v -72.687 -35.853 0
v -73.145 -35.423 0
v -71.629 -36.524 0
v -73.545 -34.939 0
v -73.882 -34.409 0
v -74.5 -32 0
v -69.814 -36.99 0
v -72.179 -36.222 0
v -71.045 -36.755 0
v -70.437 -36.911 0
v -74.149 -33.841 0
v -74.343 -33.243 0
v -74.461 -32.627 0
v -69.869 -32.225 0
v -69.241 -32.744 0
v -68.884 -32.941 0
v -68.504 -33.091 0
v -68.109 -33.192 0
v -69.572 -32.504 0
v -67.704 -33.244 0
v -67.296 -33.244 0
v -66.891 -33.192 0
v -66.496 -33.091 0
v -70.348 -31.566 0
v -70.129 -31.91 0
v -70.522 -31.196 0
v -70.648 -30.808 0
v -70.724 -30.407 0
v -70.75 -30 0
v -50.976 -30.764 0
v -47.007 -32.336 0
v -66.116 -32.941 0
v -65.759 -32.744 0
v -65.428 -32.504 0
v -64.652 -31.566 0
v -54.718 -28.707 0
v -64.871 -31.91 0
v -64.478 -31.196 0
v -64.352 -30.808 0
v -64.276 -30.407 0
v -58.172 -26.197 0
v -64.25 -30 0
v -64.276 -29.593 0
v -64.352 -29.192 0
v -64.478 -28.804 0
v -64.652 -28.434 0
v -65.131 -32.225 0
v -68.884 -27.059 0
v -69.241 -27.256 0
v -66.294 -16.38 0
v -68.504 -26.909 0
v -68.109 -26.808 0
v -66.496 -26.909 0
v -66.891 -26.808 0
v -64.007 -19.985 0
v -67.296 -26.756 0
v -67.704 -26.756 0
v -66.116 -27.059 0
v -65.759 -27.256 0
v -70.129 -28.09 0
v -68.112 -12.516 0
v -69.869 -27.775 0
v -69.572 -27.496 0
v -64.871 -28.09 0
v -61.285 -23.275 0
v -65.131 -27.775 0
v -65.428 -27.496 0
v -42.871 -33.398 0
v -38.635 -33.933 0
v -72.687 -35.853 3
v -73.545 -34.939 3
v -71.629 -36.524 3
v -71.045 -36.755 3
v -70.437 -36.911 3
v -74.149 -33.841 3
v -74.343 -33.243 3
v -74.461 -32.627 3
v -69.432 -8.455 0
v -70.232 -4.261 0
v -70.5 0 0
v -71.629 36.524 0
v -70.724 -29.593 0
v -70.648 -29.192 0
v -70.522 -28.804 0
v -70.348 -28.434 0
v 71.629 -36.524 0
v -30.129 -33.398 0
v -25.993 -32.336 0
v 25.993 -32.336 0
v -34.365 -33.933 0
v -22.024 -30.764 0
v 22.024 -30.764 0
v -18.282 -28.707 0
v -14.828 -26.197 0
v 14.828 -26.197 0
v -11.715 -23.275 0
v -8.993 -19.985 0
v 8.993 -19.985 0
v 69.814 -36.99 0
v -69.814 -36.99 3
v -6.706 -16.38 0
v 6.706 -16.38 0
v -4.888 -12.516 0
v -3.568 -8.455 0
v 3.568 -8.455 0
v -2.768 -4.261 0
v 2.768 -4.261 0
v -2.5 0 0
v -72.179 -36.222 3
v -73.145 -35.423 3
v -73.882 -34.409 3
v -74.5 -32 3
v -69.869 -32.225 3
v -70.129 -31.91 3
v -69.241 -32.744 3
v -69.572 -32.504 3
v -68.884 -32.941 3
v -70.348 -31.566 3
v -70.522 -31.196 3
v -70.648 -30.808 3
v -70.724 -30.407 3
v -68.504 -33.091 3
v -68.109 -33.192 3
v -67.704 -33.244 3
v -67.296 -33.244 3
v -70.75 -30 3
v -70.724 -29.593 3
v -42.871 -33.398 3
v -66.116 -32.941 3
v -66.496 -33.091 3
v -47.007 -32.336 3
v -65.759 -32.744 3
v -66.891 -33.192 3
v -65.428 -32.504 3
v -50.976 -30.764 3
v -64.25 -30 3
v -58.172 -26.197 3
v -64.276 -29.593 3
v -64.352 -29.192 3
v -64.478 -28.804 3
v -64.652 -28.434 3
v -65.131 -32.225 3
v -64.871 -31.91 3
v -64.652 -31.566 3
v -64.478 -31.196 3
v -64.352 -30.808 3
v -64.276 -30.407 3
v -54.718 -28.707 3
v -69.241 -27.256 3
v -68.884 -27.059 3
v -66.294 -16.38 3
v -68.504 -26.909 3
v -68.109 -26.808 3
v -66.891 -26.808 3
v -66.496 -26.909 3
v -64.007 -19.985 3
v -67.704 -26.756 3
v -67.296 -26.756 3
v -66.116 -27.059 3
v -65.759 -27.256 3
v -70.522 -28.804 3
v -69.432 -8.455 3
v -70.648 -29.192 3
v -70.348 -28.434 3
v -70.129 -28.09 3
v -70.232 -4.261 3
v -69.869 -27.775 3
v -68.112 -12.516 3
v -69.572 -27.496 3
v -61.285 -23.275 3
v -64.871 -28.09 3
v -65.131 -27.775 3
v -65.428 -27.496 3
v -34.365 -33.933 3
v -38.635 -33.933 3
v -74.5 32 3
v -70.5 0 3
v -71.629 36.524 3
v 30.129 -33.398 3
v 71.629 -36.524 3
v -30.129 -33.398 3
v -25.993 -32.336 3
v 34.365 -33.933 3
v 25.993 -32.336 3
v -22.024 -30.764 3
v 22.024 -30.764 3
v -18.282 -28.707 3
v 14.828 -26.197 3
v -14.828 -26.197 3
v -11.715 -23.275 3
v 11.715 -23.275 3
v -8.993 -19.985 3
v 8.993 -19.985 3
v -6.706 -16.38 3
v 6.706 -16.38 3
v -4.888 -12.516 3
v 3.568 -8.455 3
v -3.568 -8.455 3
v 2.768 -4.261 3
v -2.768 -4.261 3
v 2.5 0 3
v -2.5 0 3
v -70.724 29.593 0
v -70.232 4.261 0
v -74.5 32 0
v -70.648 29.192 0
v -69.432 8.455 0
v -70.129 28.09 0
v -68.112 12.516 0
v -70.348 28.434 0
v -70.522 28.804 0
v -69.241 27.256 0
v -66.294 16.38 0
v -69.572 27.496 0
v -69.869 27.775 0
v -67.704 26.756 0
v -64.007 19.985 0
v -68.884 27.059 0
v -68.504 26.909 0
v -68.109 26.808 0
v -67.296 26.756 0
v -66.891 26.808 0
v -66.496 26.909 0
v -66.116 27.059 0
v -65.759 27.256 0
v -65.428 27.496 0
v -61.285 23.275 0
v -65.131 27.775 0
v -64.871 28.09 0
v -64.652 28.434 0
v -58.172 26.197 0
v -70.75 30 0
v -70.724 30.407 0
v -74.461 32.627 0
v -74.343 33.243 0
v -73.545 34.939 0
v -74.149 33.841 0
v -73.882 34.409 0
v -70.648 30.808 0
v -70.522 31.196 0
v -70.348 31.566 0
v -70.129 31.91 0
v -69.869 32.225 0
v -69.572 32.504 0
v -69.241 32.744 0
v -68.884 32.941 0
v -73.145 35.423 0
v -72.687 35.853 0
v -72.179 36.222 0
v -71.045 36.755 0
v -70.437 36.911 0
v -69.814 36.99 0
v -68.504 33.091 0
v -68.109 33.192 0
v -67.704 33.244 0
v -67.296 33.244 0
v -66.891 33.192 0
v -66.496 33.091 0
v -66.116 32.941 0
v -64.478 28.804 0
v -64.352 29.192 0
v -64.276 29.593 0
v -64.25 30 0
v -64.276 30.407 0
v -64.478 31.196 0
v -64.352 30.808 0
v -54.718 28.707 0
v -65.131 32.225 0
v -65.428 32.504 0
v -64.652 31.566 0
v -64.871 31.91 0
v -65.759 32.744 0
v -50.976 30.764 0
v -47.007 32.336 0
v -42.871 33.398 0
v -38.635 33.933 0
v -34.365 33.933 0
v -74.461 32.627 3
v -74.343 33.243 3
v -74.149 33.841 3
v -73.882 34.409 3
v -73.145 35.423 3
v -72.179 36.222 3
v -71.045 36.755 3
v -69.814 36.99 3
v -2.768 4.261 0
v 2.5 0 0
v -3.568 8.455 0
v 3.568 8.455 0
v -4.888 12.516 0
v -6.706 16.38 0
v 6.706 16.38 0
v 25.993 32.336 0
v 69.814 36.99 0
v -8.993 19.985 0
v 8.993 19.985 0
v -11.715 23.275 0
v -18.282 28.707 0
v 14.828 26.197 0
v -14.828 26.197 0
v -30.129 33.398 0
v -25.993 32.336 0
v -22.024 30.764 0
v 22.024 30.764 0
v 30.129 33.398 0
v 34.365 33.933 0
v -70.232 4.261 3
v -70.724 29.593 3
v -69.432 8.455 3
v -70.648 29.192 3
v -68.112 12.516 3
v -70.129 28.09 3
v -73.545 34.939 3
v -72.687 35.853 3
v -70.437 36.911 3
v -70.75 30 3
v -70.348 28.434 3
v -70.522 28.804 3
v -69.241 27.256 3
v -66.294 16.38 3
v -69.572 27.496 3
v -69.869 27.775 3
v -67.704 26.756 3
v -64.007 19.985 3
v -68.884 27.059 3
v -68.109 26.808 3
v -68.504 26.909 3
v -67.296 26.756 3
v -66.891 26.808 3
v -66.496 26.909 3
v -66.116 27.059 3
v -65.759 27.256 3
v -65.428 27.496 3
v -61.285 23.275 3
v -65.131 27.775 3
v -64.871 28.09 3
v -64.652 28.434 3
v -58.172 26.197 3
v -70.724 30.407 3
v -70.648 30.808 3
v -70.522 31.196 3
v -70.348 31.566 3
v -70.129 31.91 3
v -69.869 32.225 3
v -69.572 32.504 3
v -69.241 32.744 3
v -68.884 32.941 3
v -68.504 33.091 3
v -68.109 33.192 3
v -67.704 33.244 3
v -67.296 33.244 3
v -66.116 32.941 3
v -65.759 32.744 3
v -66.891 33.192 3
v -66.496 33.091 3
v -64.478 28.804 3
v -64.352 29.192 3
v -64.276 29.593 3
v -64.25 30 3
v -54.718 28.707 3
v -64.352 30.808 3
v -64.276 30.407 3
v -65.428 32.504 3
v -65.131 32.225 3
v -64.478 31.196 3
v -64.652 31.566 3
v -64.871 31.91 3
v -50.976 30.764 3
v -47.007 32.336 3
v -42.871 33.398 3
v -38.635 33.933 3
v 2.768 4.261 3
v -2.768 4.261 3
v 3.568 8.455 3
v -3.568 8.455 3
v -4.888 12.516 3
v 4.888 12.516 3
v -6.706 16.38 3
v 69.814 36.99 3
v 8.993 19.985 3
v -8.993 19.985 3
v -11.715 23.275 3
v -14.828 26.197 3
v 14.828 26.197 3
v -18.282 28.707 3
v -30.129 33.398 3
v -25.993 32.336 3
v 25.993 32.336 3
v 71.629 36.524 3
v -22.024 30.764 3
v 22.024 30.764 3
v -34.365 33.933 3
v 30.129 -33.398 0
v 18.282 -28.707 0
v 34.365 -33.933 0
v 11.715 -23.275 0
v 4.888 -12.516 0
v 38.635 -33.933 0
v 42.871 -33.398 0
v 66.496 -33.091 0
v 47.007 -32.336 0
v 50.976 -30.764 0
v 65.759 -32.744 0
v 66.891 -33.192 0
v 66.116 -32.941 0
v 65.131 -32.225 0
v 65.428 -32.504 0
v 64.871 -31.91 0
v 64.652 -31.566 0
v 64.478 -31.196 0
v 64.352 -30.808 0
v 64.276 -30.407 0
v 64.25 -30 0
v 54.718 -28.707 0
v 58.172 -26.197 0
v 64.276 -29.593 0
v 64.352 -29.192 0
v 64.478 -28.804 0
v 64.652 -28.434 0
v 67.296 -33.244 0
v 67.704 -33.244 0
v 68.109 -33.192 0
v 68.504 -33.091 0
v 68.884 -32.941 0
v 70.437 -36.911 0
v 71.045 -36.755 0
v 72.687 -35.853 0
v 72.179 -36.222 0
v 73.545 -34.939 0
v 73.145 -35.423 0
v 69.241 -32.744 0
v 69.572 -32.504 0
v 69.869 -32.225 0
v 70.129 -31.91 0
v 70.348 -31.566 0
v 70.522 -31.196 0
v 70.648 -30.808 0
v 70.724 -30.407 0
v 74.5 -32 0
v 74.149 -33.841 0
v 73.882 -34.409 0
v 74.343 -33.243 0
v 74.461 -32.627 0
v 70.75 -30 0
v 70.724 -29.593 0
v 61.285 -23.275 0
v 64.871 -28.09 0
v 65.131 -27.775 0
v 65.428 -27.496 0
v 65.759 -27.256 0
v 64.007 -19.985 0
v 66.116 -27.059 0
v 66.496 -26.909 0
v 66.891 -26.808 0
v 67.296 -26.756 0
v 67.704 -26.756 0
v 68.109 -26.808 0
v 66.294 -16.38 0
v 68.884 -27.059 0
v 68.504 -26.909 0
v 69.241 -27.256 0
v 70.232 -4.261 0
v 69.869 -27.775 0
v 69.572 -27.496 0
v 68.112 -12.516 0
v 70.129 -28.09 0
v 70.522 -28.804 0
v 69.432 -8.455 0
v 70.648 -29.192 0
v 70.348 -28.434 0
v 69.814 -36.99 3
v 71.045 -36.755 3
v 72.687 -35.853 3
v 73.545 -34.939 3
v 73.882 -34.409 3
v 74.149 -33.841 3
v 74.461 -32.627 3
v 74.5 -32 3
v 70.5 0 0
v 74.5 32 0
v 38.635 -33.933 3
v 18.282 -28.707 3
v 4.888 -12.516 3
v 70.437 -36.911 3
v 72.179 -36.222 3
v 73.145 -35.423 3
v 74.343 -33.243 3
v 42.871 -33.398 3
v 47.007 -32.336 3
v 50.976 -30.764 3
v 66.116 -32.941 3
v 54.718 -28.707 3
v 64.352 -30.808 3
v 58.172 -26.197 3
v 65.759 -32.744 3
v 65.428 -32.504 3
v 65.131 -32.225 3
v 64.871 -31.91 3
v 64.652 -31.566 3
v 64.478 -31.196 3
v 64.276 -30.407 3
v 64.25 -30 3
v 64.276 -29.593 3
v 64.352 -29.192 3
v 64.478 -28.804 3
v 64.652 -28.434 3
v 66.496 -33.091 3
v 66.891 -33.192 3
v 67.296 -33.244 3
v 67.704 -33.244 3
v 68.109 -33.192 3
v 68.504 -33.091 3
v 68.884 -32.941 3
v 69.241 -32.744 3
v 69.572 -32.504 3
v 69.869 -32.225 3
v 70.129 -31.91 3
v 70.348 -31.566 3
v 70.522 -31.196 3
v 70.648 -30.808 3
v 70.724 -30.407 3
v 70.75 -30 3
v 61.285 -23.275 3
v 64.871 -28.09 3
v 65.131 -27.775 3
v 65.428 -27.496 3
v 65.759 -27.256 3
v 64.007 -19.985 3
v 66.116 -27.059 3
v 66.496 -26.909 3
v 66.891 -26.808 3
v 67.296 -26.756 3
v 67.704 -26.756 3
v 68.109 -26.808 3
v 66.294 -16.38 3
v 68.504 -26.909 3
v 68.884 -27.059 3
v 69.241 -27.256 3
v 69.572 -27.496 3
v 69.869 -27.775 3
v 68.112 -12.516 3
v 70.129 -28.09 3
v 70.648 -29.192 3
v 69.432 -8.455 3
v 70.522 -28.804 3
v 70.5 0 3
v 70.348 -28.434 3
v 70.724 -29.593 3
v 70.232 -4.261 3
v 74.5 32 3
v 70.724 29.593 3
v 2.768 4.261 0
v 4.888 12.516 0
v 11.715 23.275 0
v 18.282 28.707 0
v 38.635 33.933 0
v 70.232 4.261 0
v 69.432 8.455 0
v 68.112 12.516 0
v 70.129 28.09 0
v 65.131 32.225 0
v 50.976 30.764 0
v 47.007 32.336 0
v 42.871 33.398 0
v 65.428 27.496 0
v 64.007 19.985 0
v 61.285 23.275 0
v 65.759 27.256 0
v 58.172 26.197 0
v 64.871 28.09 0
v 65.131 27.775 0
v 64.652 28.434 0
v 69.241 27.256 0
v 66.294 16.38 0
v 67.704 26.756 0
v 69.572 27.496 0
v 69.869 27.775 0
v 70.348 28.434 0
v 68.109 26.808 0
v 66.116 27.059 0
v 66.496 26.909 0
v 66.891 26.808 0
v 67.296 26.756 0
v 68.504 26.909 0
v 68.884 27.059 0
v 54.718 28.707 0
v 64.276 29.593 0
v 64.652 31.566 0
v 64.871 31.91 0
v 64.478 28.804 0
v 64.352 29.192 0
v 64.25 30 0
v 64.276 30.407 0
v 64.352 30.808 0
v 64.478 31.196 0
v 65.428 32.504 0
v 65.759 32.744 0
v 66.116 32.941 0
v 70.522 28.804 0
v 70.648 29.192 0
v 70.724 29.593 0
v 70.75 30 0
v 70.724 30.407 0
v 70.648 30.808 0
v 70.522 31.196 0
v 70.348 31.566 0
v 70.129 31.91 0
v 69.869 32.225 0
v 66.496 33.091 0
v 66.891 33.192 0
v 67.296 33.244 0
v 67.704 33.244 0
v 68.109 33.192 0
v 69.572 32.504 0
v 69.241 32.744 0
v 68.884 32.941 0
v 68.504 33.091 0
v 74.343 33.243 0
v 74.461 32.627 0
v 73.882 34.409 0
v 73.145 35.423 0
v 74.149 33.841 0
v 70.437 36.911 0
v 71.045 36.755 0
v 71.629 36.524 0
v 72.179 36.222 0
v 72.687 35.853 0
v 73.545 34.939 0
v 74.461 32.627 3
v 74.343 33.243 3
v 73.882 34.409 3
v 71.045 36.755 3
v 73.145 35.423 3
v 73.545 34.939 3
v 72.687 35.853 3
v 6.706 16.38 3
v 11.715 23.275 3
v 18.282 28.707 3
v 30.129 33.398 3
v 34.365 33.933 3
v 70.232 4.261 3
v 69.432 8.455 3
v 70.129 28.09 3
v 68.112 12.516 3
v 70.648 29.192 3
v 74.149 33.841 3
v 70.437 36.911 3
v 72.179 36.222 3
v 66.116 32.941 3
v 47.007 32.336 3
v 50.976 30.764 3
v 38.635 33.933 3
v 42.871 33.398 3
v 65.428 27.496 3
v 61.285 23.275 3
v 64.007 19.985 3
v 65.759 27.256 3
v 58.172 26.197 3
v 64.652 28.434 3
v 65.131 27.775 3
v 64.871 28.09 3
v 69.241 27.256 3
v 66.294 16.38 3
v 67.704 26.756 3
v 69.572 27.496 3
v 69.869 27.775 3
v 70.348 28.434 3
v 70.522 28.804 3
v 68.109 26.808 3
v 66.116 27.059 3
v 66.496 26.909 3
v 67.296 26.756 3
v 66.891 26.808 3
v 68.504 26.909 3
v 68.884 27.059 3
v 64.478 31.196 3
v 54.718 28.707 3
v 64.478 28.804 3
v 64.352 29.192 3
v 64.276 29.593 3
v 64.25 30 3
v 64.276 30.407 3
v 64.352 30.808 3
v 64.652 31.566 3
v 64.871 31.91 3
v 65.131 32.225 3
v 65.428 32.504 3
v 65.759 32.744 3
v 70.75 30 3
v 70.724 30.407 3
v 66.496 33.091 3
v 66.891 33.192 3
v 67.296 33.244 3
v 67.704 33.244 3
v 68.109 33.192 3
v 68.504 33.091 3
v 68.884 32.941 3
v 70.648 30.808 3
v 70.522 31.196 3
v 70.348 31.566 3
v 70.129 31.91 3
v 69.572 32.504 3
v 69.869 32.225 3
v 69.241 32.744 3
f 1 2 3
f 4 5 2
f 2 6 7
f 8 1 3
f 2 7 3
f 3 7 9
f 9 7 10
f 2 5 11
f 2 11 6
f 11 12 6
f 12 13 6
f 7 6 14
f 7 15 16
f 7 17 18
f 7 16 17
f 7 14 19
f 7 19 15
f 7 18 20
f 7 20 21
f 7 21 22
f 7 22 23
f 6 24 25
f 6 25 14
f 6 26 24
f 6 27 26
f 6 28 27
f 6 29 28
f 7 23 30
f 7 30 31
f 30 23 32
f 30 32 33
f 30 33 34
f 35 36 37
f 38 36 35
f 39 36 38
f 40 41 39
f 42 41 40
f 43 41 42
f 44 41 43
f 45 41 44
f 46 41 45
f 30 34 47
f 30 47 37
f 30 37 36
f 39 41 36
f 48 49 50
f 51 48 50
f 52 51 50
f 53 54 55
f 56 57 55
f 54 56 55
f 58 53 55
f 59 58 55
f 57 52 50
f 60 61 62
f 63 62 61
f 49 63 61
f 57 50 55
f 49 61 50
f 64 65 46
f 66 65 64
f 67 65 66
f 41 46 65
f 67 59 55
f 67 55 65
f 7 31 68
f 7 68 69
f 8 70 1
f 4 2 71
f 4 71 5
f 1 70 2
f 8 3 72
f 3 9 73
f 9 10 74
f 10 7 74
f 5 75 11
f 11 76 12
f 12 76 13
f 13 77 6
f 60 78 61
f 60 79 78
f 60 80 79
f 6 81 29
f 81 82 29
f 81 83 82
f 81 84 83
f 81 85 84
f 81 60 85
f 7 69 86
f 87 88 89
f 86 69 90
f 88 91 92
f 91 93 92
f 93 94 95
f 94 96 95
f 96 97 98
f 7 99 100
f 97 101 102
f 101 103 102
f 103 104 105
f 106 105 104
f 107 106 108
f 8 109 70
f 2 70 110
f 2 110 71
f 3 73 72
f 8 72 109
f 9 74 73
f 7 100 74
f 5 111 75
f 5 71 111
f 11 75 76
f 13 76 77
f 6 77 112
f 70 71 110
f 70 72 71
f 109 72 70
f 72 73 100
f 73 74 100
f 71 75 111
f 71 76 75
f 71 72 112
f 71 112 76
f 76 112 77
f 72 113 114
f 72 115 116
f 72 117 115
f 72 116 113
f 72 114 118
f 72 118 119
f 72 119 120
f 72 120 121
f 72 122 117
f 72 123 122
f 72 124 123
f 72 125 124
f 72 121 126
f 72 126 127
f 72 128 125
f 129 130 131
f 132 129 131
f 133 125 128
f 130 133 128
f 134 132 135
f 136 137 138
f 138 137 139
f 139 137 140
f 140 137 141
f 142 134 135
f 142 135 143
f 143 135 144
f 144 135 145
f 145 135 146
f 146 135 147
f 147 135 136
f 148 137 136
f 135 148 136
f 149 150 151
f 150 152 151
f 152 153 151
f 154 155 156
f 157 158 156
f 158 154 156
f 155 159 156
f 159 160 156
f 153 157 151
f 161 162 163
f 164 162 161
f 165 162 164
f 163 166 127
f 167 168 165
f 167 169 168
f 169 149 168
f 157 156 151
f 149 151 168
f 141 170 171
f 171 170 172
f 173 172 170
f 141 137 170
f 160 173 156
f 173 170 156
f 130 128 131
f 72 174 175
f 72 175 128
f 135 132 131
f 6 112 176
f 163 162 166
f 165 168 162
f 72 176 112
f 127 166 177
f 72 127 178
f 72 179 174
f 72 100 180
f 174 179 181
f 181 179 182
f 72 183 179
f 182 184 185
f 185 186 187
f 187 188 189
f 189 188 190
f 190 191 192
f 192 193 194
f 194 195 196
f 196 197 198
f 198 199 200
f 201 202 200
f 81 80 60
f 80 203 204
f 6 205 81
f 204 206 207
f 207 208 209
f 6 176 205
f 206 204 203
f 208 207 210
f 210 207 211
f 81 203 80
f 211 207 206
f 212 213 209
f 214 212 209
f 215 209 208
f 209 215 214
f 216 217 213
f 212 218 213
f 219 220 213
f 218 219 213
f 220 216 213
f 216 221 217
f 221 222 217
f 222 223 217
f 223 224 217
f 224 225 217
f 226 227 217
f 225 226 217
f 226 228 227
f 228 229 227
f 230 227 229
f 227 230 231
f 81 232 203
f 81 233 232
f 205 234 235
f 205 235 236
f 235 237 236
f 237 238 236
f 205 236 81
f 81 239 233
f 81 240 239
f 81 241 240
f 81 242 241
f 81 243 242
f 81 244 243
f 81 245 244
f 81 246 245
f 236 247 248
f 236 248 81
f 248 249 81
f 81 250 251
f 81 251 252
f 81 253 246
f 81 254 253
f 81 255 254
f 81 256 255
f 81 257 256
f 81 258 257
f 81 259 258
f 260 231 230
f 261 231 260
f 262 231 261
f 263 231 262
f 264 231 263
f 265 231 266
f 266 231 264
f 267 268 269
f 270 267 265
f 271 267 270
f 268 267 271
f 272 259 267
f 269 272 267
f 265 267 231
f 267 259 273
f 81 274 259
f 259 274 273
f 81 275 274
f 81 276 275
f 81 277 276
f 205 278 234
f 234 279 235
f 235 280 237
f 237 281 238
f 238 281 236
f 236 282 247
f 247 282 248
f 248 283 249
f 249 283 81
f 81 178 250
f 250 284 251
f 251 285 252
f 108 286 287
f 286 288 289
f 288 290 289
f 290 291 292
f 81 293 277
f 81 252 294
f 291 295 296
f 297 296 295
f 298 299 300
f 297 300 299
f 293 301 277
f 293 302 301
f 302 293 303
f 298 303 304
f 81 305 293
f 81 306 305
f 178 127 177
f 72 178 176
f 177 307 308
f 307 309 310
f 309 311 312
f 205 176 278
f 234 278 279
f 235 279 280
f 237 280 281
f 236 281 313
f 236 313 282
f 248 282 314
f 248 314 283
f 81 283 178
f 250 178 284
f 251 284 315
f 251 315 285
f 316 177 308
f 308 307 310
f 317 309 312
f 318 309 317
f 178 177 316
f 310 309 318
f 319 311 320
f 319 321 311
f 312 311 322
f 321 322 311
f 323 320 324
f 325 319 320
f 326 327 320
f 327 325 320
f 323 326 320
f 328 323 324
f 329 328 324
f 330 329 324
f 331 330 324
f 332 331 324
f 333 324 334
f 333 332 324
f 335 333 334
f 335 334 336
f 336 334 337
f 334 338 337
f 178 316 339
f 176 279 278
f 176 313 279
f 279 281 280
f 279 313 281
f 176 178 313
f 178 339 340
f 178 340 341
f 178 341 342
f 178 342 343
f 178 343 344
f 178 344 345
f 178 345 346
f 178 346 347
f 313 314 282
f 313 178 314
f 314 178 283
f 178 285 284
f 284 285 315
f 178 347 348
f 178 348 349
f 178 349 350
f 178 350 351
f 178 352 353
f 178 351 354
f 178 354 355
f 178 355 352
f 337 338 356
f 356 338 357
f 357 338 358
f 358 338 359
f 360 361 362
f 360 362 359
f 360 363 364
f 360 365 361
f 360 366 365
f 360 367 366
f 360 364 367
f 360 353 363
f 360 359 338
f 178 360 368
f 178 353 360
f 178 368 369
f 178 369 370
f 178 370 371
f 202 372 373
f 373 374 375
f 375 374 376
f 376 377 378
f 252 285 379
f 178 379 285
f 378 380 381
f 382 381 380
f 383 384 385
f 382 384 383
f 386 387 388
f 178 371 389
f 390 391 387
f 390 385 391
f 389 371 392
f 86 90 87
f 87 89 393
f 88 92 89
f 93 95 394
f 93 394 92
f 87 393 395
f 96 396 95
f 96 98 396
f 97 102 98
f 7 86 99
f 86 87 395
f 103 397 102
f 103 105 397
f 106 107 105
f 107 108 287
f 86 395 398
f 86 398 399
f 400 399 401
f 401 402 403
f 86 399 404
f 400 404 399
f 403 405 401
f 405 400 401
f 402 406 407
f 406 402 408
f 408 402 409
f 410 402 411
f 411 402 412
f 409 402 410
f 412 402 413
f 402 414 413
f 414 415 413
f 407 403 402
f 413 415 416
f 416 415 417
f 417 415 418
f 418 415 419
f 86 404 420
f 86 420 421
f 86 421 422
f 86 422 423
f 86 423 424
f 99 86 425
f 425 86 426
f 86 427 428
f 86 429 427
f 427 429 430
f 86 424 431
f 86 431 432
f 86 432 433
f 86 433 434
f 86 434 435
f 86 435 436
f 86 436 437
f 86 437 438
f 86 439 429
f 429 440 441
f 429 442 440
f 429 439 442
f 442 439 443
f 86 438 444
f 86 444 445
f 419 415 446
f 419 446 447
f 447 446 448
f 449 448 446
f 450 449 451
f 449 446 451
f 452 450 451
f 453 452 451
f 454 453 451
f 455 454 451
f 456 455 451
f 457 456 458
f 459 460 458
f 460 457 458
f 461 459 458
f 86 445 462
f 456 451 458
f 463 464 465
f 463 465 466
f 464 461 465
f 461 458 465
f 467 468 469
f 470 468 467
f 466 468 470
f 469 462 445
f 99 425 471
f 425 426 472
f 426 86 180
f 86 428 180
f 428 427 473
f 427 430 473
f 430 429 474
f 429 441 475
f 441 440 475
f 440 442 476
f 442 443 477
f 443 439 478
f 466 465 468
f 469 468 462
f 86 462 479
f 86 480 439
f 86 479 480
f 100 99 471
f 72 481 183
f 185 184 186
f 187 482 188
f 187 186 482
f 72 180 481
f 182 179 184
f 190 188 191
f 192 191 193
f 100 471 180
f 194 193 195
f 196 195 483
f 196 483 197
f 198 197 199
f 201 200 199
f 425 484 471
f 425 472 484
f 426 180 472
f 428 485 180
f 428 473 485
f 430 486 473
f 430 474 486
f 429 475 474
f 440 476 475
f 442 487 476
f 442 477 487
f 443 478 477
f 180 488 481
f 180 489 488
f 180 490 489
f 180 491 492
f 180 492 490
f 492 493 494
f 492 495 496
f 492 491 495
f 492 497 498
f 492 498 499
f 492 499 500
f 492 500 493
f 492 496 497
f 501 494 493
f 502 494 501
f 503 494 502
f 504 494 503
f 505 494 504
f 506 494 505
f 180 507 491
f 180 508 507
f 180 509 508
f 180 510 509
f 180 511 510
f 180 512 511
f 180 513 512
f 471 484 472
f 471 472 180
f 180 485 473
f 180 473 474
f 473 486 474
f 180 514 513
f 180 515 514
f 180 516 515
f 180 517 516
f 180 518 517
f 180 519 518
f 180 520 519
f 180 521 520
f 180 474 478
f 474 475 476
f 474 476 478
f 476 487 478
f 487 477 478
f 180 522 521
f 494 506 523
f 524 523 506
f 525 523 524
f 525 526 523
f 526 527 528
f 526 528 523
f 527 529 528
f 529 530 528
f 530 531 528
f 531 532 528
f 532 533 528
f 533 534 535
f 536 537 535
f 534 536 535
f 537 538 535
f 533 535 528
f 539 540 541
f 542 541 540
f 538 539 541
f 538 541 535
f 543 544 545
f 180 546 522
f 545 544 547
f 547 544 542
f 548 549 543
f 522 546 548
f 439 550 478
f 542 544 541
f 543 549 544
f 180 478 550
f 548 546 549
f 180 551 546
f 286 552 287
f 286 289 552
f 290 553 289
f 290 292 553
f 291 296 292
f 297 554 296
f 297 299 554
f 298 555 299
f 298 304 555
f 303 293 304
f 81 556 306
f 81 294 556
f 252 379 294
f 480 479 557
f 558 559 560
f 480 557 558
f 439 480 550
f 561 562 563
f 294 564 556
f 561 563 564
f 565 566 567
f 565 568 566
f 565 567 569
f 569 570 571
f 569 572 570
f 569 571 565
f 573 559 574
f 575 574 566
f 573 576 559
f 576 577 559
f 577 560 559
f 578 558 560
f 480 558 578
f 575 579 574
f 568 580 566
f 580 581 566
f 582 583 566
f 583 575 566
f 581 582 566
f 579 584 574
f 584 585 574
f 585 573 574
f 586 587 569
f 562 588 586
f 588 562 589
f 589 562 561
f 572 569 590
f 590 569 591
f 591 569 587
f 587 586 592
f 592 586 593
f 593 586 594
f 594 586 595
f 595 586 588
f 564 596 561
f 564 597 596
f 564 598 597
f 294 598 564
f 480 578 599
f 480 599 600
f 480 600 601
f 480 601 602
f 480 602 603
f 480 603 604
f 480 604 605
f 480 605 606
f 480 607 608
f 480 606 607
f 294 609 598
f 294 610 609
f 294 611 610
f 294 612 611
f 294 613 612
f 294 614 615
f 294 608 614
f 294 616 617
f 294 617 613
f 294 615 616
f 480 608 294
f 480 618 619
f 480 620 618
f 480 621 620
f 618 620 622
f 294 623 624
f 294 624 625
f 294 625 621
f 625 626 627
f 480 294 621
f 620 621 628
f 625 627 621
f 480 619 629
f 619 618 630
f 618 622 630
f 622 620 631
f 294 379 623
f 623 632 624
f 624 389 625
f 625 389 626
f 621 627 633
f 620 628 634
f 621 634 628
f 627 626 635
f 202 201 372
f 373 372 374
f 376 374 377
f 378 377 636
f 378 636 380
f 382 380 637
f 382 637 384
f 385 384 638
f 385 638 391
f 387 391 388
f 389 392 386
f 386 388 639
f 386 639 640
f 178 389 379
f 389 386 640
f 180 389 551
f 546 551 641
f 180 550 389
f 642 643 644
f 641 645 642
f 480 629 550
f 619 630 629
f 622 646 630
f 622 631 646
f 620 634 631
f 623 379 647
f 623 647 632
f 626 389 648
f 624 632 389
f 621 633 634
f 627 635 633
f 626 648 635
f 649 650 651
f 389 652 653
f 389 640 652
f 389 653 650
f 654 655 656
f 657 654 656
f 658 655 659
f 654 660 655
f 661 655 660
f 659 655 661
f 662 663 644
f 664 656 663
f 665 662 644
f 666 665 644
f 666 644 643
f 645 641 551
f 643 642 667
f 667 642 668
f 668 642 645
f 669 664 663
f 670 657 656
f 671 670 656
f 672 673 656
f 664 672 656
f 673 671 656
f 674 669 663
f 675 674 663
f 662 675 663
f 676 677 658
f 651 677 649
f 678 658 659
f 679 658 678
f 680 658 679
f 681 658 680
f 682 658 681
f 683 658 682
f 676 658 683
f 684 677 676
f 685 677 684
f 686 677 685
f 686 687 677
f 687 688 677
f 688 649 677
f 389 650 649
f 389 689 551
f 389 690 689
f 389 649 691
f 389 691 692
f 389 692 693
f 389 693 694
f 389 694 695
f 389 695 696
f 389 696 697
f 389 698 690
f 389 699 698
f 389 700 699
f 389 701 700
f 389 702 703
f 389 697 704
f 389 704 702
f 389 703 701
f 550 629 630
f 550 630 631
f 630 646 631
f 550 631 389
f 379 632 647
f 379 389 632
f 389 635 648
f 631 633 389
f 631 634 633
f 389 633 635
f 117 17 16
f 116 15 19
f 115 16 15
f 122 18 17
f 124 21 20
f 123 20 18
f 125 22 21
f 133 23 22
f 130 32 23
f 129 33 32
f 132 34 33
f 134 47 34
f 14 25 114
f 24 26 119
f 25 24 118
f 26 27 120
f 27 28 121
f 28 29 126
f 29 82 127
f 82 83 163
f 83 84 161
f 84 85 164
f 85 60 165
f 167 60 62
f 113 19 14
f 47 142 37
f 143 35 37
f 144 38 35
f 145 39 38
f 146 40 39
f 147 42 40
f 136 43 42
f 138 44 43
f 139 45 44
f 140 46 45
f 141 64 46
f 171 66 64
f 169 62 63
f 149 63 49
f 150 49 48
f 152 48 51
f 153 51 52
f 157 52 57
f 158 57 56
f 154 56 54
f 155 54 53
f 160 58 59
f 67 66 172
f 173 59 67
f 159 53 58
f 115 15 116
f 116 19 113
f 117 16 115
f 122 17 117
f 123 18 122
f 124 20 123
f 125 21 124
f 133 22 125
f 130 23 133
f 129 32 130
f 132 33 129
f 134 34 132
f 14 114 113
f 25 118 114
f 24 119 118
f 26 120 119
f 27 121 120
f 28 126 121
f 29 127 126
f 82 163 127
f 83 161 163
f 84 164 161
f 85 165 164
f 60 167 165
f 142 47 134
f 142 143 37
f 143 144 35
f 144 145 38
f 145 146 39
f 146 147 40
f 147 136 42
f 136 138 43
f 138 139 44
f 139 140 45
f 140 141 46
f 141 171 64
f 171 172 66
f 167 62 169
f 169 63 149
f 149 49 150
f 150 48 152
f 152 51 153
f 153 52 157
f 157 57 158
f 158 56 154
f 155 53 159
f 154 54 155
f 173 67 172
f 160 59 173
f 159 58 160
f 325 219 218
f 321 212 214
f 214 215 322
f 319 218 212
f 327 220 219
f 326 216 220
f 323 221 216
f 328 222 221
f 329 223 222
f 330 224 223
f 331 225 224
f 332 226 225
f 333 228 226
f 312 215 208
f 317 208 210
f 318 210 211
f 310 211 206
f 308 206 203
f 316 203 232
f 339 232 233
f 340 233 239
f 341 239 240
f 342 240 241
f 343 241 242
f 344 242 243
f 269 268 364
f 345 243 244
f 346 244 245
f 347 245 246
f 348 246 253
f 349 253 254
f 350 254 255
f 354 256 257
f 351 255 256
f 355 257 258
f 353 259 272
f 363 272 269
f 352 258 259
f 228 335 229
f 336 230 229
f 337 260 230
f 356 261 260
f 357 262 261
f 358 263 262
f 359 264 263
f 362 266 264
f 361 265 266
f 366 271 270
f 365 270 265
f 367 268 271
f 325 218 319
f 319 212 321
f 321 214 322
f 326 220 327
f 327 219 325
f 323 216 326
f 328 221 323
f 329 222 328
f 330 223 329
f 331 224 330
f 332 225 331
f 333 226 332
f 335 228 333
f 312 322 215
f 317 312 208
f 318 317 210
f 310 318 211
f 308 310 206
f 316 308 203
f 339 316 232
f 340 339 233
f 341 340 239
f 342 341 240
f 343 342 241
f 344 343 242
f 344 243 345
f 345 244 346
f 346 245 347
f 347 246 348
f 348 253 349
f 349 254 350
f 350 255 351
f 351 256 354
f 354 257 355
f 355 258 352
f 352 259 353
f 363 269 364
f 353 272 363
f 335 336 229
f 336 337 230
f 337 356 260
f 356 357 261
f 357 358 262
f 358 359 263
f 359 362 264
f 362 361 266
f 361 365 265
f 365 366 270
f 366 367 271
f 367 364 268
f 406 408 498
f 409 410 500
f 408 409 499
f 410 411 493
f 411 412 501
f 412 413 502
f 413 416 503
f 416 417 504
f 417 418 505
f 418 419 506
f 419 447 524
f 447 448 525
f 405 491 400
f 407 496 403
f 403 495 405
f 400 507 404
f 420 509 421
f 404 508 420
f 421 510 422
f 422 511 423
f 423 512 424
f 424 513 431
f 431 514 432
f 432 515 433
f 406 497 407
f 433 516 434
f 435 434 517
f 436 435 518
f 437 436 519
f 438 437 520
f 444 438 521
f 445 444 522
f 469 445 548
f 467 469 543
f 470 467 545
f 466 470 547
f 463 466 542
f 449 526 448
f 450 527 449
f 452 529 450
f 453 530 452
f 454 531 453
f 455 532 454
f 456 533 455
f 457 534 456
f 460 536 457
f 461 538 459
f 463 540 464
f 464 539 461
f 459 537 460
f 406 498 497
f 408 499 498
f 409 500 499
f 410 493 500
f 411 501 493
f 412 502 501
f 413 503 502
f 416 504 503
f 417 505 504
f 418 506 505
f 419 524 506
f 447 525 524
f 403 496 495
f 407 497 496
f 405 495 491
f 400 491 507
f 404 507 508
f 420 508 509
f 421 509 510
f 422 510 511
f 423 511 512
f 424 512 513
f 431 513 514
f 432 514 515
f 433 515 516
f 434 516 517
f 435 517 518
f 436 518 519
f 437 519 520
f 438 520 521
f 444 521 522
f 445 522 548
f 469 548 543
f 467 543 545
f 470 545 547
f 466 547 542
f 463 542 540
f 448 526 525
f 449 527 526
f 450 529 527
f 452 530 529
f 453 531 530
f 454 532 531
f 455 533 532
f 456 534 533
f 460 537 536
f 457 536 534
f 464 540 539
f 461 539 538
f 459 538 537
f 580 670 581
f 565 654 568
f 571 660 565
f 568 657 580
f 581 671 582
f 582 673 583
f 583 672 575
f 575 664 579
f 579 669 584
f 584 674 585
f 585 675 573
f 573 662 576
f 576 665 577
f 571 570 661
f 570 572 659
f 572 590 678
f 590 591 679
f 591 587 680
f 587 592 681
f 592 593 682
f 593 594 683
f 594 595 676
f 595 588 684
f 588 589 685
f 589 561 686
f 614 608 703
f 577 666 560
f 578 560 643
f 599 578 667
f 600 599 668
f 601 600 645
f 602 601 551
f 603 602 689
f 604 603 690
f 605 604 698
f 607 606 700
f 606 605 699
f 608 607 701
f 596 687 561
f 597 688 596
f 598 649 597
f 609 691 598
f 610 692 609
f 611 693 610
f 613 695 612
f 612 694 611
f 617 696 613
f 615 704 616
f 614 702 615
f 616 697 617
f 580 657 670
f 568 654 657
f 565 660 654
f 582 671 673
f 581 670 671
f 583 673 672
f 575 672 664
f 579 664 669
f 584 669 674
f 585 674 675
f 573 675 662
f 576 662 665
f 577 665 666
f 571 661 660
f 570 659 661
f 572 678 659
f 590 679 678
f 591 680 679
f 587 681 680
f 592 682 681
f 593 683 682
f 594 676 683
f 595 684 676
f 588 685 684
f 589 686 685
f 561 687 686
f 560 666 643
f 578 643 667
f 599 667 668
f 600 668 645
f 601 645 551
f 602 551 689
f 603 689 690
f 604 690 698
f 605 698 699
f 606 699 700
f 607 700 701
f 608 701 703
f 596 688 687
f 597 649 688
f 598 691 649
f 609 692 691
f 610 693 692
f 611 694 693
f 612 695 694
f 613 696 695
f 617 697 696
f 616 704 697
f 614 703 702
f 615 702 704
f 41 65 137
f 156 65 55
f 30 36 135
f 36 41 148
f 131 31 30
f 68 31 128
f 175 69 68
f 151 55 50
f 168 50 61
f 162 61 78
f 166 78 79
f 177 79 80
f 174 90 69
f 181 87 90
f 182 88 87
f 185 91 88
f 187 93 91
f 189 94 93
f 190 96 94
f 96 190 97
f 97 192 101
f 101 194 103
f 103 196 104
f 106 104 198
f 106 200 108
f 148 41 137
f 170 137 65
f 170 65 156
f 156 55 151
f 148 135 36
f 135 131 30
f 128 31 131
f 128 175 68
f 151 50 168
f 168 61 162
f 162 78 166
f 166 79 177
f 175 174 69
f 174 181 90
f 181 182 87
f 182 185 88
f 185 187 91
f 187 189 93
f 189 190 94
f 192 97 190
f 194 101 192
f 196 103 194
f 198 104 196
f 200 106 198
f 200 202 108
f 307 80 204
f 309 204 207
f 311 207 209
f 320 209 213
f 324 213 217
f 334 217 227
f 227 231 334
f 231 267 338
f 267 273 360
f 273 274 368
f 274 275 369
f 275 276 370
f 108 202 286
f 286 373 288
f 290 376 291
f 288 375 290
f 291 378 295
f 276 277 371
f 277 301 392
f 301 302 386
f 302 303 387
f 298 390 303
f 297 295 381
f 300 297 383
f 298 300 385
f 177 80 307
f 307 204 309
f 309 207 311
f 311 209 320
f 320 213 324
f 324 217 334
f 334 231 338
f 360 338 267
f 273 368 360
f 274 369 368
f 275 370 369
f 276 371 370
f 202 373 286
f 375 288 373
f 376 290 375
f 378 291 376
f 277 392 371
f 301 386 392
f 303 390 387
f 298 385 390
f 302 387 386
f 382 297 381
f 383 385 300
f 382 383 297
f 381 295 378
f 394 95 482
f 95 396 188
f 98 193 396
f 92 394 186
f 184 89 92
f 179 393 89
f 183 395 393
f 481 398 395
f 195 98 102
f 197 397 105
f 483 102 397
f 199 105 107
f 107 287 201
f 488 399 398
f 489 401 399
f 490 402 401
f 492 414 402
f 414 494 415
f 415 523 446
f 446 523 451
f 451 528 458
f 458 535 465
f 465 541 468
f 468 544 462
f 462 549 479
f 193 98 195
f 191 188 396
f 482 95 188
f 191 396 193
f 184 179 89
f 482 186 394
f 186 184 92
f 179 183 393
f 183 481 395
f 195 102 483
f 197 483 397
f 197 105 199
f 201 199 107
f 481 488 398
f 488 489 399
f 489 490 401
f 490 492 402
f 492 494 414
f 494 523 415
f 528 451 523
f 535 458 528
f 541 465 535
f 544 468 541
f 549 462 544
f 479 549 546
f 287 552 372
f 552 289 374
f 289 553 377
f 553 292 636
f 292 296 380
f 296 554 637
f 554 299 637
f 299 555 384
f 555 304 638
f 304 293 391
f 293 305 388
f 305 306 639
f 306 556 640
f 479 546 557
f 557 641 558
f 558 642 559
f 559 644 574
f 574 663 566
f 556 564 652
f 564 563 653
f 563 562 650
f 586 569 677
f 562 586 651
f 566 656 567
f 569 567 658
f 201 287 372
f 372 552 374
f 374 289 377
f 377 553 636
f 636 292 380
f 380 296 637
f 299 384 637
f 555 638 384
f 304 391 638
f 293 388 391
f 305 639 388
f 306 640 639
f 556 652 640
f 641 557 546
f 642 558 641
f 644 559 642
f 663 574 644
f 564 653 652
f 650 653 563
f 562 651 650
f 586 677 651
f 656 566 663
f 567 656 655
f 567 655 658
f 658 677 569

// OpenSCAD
$fn = 50;

difference() {
	union() {
		hull() {
			translate(v = [-69.5, 32.0, 0]) {
				cylinder(h = 3, r = 5);
			}
			translate(v = [69.5, 32.0, 0]) {
				cylinder(h = 3, r = 5);
			}
			translate(v = [-69.5, -32.0, 0]) {
				cylinder(h = 3, r = 5);
			}
			translate(v = [69.5, -32.0, 0]) {
				cylinder(h = 3, r = 5);
			}
		}
	}
	union() {
		translate(v = [-67.5, -30.0, -100.0]) {
			cylinder(h = 200, r = 3.25);
		}
		translate(v = [-67.5, 30.0, -100.0]) {
			cylinder(h = 200, r = 3.25);
		}
		translate(v = [67.5, -30.0, -100.0]) {
			cylinder(h = 200, r = 3.25);
		}
		translate(v = [67.5, 30.0, -100.0]) {
			cylinder(h = 200, r = 3.25);
		}
		translate(v = [-67.5, -30.0, -100.0]) {
			cylinder(h = 200, r = 1.8);
		}
		translate(v = [-67.5, 30.0, -100.0]) {
			cylinder(h = 200, r = 1.8);
		}
		translate(v = [67.5, -30.0, -100.0]) {
			cylinder(h = 200, r = 1.8);
		}
		translate(v = [67.5, 30.0, -100.0]) {
			cylinder(h = 200, r = 1.8);
		}
		translate(v = [-36.5, 0, 0.0]) {
			cylinder(h = 3, r = 34.0);
		}
		translate(v = [36.5, 0, 0.0]) {
			cylinder(h = 3, r = 34.0);
		}
	}
}
